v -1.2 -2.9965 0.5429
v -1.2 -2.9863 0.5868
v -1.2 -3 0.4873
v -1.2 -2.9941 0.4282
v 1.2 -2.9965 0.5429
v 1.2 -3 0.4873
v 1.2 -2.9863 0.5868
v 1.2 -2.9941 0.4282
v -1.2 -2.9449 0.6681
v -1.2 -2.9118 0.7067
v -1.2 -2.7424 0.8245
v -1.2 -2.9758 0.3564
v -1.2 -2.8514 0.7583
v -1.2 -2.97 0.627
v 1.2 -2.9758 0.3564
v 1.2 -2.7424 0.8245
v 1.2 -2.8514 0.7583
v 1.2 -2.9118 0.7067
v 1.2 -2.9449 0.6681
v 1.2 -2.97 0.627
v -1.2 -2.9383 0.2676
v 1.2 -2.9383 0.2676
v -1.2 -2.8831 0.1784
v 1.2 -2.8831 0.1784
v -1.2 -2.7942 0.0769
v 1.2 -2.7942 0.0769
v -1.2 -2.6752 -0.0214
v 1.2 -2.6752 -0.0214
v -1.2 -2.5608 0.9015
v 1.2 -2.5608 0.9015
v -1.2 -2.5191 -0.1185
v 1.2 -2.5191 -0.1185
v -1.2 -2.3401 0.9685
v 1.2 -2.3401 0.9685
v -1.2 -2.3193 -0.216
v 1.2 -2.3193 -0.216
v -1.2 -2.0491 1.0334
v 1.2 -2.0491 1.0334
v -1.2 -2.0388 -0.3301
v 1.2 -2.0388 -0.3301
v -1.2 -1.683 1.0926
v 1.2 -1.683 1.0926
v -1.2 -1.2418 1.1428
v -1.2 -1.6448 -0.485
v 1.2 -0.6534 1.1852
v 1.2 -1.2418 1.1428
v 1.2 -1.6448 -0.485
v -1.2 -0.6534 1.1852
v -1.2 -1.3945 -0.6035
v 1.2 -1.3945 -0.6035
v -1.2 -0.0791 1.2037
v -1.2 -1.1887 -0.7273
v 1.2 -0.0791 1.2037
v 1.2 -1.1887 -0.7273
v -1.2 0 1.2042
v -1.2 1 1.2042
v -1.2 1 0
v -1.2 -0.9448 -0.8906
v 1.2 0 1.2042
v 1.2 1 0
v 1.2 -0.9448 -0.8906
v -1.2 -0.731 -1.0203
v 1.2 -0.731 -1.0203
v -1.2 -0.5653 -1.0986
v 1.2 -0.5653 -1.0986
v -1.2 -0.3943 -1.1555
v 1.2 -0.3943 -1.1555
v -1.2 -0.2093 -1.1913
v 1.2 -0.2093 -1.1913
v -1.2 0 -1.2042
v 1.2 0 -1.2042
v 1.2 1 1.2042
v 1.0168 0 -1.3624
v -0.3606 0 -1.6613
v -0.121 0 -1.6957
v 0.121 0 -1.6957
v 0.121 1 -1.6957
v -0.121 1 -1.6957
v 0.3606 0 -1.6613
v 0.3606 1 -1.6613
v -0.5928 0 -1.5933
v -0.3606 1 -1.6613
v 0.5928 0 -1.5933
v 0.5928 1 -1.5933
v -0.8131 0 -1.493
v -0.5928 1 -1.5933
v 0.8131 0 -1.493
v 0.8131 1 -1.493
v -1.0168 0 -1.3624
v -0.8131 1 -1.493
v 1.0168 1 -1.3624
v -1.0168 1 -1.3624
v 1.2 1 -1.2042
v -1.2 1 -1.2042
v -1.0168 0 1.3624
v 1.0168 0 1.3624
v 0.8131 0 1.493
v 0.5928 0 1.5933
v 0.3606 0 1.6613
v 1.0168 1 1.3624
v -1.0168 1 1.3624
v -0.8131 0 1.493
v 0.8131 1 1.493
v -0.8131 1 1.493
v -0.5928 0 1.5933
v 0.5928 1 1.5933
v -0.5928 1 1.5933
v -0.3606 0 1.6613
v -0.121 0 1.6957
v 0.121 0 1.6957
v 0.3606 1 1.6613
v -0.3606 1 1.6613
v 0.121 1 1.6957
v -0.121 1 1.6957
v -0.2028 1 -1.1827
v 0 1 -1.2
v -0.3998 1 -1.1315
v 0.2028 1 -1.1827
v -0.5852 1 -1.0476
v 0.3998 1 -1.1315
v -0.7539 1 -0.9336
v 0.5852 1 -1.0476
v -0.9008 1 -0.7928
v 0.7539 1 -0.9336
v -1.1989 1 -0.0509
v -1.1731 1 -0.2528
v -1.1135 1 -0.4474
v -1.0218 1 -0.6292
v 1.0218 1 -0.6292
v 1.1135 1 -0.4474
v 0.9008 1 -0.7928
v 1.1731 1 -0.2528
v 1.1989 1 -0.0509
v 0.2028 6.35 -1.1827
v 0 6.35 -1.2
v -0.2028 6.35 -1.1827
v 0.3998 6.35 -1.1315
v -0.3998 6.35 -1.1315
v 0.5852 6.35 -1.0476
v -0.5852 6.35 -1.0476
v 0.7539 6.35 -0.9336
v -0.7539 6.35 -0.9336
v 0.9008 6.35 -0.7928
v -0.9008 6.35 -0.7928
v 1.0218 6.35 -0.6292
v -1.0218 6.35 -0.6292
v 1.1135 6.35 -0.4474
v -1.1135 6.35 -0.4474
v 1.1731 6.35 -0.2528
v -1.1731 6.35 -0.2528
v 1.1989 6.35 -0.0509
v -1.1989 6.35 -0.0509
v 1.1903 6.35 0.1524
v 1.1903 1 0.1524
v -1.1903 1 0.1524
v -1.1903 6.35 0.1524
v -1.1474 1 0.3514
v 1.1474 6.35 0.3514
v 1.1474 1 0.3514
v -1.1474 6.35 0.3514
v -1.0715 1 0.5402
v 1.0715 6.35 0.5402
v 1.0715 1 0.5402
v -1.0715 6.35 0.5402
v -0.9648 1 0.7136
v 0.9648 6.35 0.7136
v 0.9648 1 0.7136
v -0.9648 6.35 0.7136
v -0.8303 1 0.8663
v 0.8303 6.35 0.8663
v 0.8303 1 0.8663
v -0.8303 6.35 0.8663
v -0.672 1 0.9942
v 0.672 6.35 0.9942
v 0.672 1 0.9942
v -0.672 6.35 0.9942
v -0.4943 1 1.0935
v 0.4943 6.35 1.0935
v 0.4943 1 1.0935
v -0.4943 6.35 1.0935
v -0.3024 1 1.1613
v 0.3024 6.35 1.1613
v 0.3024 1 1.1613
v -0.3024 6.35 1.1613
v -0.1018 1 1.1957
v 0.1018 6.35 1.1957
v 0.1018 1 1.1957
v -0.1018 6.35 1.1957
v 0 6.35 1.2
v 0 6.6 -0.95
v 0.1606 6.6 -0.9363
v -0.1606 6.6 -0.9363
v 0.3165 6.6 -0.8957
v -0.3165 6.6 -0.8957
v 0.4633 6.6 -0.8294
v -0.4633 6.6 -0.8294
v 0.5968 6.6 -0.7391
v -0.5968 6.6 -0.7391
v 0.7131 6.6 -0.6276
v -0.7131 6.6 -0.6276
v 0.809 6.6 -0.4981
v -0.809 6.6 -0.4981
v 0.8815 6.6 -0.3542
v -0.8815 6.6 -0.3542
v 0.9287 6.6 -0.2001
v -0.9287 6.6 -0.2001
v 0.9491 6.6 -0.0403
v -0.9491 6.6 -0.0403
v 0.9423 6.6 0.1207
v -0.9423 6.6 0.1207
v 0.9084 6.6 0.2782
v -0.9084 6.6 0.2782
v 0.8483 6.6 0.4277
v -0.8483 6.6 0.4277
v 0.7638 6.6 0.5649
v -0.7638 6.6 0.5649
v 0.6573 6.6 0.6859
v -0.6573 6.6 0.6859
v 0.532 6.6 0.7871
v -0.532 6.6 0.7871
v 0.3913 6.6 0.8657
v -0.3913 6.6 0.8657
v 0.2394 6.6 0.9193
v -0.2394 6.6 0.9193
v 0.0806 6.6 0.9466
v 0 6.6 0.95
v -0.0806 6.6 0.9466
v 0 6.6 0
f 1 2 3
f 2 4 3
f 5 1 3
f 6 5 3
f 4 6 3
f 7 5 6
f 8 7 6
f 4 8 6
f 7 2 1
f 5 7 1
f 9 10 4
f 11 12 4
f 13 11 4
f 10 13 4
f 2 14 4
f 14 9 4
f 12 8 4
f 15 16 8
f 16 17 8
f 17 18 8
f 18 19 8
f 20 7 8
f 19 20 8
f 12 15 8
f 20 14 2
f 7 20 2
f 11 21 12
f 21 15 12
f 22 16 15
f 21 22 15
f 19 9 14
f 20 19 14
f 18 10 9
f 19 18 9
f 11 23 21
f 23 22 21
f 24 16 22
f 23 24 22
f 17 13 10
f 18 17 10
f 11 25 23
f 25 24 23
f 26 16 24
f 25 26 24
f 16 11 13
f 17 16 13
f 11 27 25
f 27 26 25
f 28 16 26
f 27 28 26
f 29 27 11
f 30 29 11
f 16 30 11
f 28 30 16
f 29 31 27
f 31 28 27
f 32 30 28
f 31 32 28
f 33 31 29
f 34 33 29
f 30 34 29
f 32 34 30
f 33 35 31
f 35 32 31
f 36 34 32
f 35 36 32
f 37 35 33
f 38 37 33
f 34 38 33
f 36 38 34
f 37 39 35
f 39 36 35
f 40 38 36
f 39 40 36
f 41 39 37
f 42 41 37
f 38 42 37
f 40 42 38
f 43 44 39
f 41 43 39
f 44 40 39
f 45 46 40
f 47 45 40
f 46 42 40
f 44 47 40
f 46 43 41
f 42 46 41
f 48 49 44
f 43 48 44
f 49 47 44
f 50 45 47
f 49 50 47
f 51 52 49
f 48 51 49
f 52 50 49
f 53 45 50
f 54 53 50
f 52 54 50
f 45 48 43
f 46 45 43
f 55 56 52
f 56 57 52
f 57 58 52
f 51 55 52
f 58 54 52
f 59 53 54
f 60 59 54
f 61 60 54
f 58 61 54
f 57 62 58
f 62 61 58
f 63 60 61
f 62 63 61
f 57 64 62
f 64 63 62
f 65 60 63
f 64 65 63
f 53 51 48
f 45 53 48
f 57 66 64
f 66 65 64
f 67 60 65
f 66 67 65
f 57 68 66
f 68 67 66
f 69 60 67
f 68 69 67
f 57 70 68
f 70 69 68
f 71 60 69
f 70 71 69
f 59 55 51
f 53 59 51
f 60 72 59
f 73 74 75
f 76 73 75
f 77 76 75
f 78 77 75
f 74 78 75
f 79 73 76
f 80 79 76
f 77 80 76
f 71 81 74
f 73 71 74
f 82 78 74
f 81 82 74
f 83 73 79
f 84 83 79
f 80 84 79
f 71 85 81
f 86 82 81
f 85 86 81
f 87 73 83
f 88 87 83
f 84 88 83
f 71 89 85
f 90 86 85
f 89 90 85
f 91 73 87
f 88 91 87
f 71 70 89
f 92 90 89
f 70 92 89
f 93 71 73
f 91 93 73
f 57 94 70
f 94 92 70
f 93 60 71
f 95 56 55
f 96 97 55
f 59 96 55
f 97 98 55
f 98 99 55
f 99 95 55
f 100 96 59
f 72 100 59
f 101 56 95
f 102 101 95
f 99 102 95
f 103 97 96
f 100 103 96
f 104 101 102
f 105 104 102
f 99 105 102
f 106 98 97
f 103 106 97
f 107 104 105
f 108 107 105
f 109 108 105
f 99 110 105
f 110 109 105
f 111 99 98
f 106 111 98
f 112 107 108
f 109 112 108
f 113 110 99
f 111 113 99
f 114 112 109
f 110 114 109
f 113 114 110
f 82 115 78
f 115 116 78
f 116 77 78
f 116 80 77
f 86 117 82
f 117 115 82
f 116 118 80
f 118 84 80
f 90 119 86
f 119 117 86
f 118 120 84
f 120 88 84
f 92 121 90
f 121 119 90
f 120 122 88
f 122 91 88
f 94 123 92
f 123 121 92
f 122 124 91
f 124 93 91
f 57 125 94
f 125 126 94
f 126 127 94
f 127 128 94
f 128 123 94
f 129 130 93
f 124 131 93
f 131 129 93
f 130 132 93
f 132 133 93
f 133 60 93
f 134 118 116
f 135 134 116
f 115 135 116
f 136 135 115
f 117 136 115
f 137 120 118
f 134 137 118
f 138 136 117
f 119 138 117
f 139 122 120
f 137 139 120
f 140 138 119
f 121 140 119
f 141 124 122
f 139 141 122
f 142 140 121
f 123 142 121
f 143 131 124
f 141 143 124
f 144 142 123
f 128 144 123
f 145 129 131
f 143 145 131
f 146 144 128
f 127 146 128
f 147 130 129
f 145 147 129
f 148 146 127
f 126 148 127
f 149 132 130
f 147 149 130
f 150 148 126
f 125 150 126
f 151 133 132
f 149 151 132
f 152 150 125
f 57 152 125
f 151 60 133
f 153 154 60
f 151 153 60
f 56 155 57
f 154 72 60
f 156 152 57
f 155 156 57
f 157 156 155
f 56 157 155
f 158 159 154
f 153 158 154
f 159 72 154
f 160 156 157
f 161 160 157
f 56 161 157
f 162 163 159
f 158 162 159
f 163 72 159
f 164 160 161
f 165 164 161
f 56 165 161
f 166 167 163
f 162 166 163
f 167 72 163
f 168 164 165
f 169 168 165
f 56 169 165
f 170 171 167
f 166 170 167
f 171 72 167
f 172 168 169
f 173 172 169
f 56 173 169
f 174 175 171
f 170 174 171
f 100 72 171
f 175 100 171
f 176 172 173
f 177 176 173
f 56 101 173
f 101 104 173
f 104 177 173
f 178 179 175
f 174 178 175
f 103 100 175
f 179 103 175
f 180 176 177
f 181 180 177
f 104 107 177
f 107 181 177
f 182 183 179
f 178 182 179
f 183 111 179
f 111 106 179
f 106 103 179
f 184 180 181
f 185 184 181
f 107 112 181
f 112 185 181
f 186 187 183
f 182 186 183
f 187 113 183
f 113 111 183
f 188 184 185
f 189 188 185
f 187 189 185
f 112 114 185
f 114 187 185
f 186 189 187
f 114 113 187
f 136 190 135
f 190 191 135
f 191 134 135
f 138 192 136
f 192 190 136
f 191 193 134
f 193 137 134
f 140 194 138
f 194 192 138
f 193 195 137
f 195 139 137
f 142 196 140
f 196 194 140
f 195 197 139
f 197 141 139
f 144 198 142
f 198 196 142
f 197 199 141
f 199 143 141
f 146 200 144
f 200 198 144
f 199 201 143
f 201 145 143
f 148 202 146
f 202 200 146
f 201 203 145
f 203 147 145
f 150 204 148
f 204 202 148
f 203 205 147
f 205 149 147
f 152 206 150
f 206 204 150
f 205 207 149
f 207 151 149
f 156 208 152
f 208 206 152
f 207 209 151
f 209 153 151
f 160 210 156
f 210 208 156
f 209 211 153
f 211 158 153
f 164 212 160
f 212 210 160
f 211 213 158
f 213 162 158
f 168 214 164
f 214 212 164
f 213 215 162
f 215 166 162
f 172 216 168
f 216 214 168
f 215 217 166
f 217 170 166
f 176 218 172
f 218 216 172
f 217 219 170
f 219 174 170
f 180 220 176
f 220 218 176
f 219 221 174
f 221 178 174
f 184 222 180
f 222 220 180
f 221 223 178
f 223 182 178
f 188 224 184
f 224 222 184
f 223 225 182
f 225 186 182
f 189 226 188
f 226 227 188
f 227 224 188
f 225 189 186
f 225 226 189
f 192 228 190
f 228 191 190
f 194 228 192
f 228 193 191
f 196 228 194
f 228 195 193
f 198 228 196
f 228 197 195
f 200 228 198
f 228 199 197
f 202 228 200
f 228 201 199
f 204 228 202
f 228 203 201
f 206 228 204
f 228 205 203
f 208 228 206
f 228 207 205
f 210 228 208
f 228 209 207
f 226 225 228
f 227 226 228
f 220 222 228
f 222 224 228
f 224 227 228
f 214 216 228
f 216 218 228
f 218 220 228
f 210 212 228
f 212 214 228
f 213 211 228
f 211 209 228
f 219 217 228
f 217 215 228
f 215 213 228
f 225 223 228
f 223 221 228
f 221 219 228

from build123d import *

# Parameters (mm, degrees)
SKETCH1_R                       = 1.2
BOSS_EXTRUDE3_DEPTH             = 6.6
CHAMFER1_SIZE                   = 0.25
BOSS_EXTRUDE4_DEPTH             = 1
BOSS_EXTRUDE5_REACH             = 8.92
BOSS_EXTRUDE5_DIRECTION_2_REACH = 8.92


with BuildPart() as part:
    # Sketch1 → Boss-Extrude3 (new body)
    with BuildSketch(Plane(origin=(0, 0, 0), x_dir=(1, 0, 0), z_dir=(0, 1, 0))):
        with Locations(Location((0, 0, 0), (0, 0, 270))):
            Circle(SKETCH1_R)
    extrude(amount=BOSS_EXTRUDE3_DEPTH)

    # Chamfer1
    chamfer1_edges = [part.edges().sort_by_distance(p)[0] for p in [
        (0, 6.6, -1.2),
    ]]
    chamfer(chamfer1_edges, length=CHAMFER1_SIZE)

    # Sketch3 → Boss-Extrude4 (add)
    with BuildSketch(Plane(origin=(0, 0, 0), x_dir=(1, 0, 0), z_dir=(0, 1, 0))):
        with BuildLine():
            Line((-1.2, 0), (-1.2, -1.204159458))
            ThreePointArc((-1.2, -1.204159458), (0, -1.7), (1.2, -1.204159458))
            Line((1.2, -1.204159458), (1.2, 0))
            ThreePointArc((1.2, 0), (0, -1.2), (-1.2, 0))
        make_face()
        with BuildLine():
            Line((-1.2, 1.204159458), (-1.2, 0))
            ThreePointArc((-1.2, 0), (0, 1.2), (1.2, 0))
            Line((1.2, 0), (1.2, 1.204159458))
            ThreePointArc((1.2, 1.204159458), (0, 1.7), (-1.2, 1.204159458))
        make_face()
    extrude(amount=BOSS_EXTRUDE4_DEPTH)

    # Boss-Extrude5: up to this face of the body (flat: up to its plane)
    boss_extrude5_end = Plane(part.part.faces().sort_by_distance((1.2, 0.5, 0))[0])
    # Sketch2 → Boss-Extrude5 (add, up to the picked face)
    with BuildSketch(Plane(origin=(0, 0, 0), x_dir=(0, 0, -1), z_dir=(1, 0, 0)), mode=Mode.PRIVATE) as boss_extrude5_sk1:
        with BuildLine():
            Line((-1.204159458, 0), (1.204159458, 0))
            add(Edge.make_bspline(
                [(1.204159458, 0), (1.204159458, -0.666666667), (0.402493307, -1.289775359), (0.160723245, -2.93084984), (-1.104899297, -3.09327163), (-1.204159458, -0.6), (-1.204159458, 0)],
                knots=[0, 0, 0, 0, 0.278964608, 0.615716948, 0.687820487, 1, 1, 1, 1], degree=3))
        make_face()
    boss_extrude5_tool1 = split(extrude(boss_extrude5_sk1.sketch, amount=BOSS_EXTRUDE5_REACH, mode=Mode.PRIVATE), bisect_by=boss_extrude5_end, keep=Keep.BOTH, mode=Mode.PRIVATE)
    add(boss_extrude5_tool1.solids().sort_by(Axis((0, -1.202365, 0.190001), (1, 0, 0)))[0])

    # Boss-Extrude5 direction 2: up to this face of the body (flat: up to its plane)
    boss_extrude5_direction_2_end = Plane(part.part.faces().sort_by_distance((-1.2, 0.5, 0))[0])
    # Sketch2 → Boss-Extrude5 direction 2 (add, up to the picked face)
    with BuildSketch(Plane(origin=(0, 0, 0), x_dir=(0, 0, -1), z_dir=(1, 0, 0)), mode=Mode.PRIVATE) as boss_extrude5_direction_2_sk1:
        with BuildLine():
            Line((-1.204159458, 0), (1.204159458, 0))
            add(Edge.make_bspline(
                [(1.204159458, 0), (1.204159458, -0.666666667), (0.402493307, -1.289775359), (0.160723245, -2.93084984), (-1.104899297, -3.09327163), (-1.204159458, -0.6), (-1.204159458, 0)],
                knots=[0, 0, 0, 0, 0.278964608, 0.615716948, 0.687820487, 1, 1, 1, 1], degree=3))
        make_face()
    boss_extrude5_direction_2_tool1 = split(extrude(boss_extrude5_direction_2_sk1.sketch, amount=-BOSS_EXTRUDE5_DIRECTION_2_REACH, mode=Mode.PRIVATE), bisect_by=boss_extrude5_direction_2_end, keep=Keep.BOTH, mode=Mode.PRIVATE)
    add(boss_extrude5_direction_2_tool1.solids().sort_by(Axis((0, -1.202365, 0.190001), (-1, 0, 0)))[0])


solid = part.part
